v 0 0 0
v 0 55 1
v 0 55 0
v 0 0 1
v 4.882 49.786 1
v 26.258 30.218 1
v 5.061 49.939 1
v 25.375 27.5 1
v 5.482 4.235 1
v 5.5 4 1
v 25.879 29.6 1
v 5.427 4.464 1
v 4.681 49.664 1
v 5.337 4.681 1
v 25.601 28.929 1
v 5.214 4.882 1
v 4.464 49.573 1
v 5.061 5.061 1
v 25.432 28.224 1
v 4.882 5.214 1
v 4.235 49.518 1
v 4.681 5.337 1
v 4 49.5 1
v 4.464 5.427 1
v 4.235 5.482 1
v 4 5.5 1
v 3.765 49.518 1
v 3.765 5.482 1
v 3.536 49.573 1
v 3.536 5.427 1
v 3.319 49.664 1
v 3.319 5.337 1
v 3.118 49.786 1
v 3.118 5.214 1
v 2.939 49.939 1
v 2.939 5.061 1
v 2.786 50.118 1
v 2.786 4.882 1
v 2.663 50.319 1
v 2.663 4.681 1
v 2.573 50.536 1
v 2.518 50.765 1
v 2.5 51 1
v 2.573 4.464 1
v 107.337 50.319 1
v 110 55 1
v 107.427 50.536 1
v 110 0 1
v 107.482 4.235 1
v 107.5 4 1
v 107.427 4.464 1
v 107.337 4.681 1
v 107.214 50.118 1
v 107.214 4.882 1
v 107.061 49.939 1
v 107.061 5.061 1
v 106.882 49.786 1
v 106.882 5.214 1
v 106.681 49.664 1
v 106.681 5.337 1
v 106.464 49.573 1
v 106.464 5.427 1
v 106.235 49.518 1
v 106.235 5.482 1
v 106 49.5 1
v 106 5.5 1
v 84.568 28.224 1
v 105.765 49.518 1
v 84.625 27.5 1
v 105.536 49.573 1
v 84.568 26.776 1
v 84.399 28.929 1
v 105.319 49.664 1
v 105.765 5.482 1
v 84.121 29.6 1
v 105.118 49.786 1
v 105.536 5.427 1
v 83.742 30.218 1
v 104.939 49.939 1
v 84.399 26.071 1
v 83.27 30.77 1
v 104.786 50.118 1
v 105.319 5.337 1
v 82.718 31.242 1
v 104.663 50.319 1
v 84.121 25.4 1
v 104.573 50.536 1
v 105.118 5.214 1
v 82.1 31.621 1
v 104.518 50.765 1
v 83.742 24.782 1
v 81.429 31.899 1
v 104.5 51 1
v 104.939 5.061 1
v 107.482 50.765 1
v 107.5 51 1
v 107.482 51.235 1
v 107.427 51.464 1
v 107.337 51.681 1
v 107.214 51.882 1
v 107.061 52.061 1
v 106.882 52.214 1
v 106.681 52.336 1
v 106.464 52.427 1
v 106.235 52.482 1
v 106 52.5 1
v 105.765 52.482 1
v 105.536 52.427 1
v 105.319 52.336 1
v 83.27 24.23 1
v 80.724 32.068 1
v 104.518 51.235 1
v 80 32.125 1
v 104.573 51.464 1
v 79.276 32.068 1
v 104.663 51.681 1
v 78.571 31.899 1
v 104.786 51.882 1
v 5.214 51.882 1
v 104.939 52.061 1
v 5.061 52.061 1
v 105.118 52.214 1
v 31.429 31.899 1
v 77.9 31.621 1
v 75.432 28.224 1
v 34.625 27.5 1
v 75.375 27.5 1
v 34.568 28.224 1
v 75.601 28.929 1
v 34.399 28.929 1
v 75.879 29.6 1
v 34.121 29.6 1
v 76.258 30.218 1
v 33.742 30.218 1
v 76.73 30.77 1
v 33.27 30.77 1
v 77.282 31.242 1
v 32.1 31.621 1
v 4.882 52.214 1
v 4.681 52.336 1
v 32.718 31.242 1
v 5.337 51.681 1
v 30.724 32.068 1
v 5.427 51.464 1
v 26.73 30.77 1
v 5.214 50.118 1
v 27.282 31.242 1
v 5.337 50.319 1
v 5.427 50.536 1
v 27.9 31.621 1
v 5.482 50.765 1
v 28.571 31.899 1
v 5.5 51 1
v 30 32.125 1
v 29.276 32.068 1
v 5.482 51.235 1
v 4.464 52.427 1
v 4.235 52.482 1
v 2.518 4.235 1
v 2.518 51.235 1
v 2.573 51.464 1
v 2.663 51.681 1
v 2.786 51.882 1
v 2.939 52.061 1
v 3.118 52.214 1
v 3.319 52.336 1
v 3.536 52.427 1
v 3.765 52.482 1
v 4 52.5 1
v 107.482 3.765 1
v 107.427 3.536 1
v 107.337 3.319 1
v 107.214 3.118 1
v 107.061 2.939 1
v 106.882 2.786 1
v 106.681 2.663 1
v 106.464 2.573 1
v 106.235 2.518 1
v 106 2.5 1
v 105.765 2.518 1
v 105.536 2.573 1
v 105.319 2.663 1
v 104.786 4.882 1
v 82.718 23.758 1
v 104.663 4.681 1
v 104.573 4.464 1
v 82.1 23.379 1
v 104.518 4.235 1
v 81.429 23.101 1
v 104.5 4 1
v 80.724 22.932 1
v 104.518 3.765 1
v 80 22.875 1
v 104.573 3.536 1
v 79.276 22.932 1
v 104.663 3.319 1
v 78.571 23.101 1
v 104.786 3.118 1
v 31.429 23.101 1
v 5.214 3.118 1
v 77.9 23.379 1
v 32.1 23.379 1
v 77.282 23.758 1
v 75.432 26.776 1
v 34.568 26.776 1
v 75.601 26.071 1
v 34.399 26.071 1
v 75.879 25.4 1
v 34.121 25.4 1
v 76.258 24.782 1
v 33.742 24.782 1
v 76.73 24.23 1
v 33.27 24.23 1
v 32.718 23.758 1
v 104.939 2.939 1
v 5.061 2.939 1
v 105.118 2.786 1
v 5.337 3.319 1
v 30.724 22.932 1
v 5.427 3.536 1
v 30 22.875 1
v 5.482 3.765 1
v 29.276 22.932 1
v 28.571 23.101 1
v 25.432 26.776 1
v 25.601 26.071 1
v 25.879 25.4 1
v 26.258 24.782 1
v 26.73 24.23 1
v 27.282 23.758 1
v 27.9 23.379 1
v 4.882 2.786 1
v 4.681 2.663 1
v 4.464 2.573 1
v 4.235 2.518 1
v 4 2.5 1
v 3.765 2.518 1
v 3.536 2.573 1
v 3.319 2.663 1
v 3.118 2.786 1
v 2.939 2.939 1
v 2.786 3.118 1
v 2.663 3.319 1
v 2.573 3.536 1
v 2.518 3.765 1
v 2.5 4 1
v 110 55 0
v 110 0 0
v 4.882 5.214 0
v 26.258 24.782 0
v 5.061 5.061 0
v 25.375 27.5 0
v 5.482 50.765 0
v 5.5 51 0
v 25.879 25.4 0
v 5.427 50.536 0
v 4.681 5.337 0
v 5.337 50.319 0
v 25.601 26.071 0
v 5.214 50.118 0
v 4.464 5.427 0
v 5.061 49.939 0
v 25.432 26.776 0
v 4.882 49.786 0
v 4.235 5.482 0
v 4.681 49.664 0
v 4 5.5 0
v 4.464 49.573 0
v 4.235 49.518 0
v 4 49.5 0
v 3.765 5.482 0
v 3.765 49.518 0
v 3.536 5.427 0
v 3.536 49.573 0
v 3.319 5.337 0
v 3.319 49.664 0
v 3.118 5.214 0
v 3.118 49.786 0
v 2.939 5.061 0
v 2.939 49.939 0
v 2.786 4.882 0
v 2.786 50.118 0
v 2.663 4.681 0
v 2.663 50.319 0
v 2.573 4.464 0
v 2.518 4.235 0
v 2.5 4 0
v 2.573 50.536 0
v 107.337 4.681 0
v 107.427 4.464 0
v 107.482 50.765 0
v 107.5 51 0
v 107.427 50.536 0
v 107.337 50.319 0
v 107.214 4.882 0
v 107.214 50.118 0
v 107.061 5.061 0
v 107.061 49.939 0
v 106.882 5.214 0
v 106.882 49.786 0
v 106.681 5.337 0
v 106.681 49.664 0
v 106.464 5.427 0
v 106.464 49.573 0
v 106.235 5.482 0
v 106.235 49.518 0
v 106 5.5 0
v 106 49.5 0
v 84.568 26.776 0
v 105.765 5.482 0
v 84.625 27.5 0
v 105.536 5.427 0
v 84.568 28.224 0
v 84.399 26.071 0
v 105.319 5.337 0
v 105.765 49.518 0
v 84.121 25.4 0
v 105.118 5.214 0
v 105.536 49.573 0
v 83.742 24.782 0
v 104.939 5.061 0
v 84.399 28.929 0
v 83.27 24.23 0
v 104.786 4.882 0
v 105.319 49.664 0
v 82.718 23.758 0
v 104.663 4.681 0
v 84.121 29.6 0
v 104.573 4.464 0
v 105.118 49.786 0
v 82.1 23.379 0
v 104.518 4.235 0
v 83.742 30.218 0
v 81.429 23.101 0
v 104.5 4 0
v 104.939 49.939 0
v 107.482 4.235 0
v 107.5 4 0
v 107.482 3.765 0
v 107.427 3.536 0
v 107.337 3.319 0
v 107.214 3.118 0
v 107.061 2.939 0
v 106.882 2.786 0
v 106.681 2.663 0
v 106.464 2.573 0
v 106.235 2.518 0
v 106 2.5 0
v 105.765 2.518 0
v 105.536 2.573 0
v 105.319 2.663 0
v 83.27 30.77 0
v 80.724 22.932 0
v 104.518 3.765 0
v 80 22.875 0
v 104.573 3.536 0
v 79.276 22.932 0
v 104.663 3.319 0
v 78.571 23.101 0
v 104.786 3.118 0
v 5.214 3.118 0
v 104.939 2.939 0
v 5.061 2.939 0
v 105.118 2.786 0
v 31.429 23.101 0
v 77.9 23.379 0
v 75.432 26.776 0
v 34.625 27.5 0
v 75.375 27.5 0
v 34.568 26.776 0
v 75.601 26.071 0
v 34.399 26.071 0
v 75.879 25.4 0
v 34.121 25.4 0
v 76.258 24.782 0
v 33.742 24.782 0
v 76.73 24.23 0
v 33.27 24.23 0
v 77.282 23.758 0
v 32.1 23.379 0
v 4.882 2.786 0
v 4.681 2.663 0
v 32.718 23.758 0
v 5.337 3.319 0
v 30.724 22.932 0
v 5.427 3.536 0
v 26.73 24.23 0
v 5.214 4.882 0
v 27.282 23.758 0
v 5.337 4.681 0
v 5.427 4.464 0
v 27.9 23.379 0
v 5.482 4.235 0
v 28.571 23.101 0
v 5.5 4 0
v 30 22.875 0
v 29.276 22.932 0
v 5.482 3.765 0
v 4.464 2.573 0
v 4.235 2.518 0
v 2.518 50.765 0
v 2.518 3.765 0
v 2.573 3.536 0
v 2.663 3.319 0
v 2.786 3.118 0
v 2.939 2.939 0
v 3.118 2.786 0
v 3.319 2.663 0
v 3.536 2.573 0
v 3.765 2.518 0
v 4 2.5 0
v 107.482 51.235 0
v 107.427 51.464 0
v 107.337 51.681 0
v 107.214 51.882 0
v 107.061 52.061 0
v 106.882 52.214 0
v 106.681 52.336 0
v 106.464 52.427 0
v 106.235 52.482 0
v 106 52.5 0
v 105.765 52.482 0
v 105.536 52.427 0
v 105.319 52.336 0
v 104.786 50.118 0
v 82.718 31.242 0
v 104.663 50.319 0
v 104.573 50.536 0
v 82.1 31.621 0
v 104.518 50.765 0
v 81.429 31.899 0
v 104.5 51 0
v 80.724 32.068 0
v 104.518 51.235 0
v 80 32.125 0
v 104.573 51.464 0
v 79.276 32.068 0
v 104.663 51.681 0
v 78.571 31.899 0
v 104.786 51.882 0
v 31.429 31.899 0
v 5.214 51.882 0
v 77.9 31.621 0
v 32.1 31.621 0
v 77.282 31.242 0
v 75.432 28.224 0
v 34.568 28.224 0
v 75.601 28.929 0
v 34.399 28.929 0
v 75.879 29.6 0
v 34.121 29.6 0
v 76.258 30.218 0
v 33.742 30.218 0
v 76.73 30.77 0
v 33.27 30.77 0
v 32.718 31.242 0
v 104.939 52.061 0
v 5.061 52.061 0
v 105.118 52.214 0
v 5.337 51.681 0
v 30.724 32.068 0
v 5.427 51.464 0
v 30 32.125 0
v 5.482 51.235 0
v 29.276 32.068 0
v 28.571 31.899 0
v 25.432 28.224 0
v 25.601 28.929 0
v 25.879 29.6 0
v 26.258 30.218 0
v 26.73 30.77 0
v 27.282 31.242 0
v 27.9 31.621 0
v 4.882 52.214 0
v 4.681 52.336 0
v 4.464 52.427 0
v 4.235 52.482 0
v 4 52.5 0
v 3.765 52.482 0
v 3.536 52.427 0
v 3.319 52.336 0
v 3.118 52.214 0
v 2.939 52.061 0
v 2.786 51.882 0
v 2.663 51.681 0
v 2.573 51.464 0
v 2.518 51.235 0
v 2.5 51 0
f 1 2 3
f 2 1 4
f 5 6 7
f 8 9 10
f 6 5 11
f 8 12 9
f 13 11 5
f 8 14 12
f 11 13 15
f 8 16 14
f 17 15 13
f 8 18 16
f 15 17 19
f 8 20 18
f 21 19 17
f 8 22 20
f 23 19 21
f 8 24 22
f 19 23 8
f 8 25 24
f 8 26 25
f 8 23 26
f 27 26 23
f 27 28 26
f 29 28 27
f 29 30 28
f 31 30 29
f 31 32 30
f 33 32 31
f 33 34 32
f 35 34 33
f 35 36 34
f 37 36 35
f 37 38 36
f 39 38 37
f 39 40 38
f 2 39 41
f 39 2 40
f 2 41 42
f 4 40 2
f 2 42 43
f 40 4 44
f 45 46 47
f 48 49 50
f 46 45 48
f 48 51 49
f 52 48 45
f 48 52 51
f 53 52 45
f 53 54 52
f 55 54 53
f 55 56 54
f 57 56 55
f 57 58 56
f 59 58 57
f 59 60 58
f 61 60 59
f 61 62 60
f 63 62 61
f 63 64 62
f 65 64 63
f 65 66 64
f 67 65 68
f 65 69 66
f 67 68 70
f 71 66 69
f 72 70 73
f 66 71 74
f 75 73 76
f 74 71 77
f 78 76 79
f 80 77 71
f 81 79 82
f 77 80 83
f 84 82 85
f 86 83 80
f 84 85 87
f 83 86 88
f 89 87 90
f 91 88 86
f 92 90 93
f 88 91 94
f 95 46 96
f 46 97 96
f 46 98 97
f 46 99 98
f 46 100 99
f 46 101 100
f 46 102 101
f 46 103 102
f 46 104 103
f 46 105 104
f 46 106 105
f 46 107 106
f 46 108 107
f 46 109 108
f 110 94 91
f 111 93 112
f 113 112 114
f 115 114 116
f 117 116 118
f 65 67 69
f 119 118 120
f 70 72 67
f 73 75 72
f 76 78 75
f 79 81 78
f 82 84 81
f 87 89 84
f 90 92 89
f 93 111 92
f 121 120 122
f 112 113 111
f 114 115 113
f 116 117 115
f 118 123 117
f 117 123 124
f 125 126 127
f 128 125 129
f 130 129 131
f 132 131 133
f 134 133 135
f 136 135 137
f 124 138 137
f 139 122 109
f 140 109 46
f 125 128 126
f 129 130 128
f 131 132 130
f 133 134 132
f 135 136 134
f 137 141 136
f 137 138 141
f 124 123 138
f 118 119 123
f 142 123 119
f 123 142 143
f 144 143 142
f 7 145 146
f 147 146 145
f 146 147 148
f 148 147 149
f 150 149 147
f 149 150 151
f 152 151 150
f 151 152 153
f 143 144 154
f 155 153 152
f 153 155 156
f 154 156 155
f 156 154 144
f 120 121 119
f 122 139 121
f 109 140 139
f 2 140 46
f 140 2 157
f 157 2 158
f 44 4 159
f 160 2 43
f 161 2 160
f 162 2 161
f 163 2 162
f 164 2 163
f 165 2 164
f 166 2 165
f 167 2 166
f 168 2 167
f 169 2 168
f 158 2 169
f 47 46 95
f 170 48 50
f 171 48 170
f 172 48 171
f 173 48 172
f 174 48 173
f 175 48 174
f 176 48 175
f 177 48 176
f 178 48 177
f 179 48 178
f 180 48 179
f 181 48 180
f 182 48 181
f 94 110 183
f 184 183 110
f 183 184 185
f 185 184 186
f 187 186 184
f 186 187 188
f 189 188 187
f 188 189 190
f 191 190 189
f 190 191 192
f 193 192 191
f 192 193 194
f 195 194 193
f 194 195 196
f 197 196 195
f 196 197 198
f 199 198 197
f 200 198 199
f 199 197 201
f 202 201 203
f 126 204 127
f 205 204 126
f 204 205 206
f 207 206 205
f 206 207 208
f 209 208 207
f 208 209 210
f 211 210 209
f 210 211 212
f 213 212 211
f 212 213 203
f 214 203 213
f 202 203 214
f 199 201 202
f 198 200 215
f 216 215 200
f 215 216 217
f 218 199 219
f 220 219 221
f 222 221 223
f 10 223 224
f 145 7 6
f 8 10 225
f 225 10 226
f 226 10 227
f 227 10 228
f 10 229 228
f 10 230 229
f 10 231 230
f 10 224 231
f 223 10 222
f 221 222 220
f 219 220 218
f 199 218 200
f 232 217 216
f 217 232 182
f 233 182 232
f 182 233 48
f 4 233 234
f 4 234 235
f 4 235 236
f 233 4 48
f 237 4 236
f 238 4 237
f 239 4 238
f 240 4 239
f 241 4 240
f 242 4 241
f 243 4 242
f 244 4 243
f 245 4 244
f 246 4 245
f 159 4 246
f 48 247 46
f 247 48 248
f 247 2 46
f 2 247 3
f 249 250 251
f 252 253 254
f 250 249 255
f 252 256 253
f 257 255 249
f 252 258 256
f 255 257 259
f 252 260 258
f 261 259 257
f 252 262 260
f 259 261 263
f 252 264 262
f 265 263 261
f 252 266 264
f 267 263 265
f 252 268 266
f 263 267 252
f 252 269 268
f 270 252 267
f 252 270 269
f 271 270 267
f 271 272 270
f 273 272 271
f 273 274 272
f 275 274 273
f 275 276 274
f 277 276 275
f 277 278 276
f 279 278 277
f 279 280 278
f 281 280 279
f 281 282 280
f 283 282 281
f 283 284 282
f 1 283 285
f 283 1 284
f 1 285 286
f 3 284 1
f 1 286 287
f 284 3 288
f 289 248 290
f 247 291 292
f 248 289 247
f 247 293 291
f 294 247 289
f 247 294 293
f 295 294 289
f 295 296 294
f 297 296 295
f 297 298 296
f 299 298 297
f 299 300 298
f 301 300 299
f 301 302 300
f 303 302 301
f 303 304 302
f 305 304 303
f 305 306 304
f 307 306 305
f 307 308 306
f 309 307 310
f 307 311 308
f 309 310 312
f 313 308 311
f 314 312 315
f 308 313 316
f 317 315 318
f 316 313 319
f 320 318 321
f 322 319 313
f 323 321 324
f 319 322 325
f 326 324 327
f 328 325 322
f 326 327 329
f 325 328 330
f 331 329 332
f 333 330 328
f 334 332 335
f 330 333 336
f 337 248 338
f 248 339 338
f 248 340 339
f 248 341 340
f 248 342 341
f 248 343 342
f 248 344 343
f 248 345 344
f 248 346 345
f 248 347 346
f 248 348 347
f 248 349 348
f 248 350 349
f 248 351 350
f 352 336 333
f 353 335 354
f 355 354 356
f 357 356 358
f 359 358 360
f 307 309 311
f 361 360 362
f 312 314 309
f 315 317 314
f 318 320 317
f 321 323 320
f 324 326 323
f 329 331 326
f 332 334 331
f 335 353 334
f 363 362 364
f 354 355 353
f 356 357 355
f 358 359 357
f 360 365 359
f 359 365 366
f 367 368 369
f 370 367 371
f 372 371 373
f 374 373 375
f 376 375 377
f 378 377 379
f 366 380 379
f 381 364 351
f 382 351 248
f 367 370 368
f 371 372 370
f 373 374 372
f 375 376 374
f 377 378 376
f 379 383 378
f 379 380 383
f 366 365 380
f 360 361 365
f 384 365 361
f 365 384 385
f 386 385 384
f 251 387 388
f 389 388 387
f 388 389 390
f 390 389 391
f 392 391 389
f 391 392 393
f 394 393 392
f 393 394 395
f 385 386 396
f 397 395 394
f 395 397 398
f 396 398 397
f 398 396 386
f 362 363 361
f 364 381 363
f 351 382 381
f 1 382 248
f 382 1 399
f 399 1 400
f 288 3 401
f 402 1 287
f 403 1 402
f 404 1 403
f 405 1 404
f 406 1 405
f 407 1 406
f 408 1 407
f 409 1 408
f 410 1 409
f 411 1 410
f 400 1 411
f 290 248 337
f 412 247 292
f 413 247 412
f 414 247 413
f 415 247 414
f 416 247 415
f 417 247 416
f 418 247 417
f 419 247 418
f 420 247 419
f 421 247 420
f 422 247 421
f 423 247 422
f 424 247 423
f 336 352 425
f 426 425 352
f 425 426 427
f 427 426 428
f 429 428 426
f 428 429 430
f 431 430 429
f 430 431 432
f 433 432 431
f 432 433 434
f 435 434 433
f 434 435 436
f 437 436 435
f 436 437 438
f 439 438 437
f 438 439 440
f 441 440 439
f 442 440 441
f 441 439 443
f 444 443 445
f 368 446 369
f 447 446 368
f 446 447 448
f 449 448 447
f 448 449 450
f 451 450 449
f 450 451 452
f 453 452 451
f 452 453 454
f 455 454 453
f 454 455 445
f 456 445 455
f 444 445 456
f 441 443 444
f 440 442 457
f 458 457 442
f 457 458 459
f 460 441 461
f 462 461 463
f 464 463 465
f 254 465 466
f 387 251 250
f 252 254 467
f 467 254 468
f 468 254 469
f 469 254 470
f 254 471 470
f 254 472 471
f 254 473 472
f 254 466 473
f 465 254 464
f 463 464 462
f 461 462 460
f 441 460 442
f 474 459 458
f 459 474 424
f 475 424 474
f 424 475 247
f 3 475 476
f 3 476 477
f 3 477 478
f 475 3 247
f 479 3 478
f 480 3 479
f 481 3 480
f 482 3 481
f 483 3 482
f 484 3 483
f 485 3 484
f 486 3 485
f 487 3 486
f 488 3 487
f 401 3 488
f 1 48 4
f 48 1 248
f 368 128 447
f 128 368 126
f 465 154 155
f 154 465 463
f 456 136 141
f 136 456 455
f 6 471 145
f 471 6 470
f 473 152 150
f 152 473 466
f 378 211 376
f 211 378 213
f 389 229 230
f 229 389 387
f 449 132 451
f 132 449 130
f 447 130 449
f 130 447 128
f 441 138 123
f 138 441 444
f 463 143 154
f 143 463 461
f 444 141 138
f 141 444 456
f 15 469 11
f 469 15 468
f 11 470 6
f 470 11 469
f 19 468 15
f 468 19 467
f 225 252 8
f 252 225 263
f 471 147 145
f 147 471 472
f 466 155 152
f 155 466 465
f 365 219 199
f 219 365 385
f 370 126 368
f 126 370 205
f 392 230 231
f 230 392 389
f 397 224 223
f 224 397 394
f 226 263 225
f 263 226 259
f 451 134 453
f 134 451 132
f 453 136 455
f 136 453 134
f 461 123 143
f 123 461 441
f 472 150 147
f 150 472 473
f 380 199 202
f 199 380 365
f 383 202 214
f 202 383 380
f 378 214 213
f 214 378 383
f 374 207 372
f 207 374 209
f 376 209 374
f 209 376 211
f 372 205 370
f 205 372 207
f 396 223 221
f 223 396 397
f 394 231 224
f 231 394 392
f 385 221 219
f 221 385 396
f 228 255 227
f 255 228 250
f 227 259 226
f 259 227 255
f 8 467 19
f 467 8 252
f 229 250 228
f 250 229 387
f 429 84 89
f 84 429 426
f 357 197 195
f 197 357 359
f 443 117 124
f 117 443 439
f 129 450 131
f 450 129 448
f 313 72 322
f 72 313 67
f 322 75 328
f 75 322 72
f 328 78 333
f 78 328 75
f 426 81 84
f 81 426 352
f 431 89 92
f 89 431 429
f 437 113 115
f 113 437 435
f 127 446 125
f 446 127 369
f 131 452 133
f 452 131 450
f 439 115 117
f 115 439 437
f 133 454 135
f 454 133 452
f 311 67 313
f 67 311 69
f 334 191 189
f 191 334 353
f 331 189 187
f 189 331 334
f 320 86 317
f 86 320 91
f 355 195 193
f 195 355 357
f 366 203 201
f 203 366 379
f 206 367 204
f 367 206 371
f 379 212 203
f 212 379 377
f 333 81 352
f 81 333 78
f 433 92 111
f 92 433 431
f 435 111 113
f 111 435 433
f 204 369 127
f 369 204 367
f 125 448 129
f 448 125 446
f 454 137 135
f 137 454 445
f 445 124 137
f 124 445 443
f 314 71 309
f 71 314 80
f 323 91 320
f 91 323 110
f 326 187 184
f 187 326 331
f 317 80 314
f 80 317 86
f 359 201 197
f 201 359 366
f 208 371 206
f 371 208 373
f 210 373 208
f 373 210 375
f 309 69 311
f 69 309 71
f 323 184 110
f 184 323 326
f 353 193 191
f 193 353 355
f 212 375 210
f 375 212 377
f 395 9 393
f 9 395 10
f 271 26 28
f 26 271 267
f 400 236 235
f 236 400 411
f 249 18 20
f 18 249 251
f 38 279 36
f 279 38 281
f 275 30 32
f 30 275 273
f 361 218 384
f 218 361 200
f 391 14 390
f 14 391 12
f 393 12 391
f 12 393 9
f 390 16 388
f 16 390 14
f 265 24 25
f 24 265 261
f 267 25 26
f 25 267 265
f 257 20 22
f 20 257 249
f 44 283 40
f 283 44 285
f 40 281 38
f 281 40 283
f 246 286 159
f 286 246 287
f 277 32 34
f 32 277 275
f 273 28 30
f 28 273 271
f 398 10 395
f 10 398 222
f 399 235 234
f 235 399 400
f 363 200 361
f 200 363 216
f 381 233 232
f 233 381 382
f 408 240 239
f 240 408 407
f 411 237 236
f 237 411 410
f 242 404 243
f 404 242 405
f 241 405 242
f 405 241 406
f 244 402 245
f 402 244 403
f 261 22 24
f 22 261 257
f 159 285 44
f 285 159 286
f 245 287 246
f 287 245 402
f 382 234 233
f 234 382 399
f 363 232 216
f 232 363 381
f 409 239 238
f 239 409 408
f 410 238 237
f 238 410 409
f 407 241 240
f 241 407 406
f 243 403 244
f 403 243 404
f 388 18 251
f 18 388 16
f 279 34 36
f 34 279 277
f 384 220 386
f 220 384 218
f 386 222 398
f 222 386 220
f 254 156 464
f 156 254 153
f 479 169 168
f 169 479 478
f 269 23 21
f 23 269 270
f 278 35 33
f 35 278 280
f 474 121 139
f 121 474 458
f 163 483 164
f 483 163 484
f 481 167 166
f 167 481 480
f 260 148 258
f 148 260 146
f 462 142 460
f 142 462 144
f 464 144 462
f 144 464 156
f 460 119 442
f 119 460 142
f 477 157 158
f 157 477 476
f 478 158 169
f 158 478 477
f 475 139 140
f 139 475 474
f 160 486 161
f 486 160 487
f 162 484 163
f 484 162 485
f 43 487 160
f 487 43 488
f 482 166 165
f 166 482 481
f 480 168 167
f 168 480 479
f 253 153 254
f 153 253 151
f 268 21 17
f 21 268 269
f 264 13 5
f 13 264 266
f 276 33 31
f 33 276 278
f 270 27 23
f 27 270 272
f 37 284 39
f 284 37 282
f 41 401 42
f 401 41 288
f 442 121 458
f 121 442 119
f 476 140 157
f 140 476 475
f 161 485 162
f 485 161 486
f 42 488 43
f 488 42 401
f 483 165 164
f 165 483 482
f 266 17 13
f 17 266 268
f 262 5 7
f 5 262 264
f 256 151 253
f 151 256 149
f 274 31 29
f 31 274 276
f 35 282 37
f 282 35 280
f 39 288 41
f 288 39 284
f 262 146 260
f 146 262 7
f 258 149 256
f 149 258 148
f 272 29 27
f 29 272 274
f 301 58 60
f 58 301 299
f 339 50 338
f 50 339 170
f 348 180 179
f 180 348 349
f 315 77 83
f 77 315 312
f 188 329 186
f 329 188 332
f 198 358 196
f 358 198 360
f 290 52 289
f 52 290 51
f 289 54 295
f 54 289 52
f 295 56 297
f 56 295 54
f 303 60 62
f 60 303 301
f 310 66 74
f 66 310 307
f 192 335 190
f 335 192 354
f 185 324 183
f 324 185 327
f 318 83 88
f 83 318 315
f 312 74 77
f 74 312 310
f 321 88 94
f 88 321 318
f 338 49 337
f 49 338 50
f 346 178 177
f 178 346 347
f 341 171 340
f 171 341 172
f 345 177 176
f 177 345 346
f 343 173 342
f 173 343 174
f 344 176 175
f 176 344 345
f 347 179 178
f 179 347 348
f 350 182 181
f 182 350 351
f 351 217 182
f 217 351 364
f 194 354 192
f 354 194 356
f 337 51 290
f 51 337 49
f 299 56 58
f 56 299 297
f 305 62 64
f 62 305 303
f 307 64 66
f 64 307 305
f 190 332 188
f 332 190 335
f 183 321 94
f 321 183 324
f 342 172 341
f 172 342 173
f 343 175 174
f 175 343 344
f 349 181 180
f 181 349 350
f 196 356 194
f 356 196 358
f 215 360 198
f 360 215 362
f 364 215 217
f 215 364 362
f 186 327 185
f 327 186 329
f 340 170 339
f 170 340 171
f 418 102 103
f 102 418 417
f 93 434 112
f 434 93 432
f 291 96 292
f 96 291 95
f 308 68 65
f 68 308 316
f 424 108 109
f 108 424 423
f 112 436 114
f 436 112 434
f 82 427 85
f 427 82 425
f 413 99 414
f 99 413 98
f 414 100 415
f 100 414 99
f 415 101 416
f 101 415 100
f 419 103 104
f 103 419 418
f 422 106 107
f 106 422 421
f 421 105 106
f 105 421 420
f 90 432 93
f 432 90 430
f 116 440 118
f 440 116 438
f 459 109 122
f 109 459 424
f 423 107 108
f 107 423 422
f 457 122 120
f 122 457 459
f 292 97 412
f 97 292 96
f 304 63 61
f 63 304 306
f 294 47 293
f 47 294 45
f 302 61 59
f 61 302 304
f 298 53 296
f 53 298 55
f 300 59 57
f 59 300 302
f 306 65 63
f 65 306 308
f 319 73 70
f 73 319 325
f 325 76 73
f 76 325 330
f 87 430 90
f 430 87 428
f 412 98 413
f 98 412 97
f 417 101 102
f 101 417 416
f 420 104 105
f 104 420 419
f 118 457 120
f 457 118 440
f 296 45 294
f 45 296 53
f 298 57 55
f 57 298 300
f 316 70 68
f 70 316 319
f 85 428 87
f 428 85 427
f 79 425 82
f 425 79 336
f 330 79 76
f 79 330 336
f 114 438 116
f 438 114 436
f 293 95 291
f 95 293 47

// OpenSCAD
module body() {
    color("Red") cube([110,55,1]); 
}

module bigFrame() {
    color("Red") cube([53,18,10]); 
}

module smallFrame() {
    color("Red") cube([9.25,1,10]); 
}

module hole() {
    color("blue") cylinder($fn=40, h=10, r=1.5);
}

module holeBNC() {
    color("green") cylinder($fn=40, h=10, r=4.625);
}

module object(){
    difference() {
    body();    
    translate([30,27.5,-5]) holeBNC();    
    translate([80,27.5,-5]) holeBNC();
    translate([4,4,-5]) hole();
    translate([4,51,-5]) hole();
    translate([106,4,-5]) hole();
    translate([106,51,-5]) hole();
    }    
}

object();

/*
difference() {
    cube(30, center=true);
    sphere(20);
}
translate([0, 0, 30]) {
    cylinder(h=40, r=10);
}
    */
